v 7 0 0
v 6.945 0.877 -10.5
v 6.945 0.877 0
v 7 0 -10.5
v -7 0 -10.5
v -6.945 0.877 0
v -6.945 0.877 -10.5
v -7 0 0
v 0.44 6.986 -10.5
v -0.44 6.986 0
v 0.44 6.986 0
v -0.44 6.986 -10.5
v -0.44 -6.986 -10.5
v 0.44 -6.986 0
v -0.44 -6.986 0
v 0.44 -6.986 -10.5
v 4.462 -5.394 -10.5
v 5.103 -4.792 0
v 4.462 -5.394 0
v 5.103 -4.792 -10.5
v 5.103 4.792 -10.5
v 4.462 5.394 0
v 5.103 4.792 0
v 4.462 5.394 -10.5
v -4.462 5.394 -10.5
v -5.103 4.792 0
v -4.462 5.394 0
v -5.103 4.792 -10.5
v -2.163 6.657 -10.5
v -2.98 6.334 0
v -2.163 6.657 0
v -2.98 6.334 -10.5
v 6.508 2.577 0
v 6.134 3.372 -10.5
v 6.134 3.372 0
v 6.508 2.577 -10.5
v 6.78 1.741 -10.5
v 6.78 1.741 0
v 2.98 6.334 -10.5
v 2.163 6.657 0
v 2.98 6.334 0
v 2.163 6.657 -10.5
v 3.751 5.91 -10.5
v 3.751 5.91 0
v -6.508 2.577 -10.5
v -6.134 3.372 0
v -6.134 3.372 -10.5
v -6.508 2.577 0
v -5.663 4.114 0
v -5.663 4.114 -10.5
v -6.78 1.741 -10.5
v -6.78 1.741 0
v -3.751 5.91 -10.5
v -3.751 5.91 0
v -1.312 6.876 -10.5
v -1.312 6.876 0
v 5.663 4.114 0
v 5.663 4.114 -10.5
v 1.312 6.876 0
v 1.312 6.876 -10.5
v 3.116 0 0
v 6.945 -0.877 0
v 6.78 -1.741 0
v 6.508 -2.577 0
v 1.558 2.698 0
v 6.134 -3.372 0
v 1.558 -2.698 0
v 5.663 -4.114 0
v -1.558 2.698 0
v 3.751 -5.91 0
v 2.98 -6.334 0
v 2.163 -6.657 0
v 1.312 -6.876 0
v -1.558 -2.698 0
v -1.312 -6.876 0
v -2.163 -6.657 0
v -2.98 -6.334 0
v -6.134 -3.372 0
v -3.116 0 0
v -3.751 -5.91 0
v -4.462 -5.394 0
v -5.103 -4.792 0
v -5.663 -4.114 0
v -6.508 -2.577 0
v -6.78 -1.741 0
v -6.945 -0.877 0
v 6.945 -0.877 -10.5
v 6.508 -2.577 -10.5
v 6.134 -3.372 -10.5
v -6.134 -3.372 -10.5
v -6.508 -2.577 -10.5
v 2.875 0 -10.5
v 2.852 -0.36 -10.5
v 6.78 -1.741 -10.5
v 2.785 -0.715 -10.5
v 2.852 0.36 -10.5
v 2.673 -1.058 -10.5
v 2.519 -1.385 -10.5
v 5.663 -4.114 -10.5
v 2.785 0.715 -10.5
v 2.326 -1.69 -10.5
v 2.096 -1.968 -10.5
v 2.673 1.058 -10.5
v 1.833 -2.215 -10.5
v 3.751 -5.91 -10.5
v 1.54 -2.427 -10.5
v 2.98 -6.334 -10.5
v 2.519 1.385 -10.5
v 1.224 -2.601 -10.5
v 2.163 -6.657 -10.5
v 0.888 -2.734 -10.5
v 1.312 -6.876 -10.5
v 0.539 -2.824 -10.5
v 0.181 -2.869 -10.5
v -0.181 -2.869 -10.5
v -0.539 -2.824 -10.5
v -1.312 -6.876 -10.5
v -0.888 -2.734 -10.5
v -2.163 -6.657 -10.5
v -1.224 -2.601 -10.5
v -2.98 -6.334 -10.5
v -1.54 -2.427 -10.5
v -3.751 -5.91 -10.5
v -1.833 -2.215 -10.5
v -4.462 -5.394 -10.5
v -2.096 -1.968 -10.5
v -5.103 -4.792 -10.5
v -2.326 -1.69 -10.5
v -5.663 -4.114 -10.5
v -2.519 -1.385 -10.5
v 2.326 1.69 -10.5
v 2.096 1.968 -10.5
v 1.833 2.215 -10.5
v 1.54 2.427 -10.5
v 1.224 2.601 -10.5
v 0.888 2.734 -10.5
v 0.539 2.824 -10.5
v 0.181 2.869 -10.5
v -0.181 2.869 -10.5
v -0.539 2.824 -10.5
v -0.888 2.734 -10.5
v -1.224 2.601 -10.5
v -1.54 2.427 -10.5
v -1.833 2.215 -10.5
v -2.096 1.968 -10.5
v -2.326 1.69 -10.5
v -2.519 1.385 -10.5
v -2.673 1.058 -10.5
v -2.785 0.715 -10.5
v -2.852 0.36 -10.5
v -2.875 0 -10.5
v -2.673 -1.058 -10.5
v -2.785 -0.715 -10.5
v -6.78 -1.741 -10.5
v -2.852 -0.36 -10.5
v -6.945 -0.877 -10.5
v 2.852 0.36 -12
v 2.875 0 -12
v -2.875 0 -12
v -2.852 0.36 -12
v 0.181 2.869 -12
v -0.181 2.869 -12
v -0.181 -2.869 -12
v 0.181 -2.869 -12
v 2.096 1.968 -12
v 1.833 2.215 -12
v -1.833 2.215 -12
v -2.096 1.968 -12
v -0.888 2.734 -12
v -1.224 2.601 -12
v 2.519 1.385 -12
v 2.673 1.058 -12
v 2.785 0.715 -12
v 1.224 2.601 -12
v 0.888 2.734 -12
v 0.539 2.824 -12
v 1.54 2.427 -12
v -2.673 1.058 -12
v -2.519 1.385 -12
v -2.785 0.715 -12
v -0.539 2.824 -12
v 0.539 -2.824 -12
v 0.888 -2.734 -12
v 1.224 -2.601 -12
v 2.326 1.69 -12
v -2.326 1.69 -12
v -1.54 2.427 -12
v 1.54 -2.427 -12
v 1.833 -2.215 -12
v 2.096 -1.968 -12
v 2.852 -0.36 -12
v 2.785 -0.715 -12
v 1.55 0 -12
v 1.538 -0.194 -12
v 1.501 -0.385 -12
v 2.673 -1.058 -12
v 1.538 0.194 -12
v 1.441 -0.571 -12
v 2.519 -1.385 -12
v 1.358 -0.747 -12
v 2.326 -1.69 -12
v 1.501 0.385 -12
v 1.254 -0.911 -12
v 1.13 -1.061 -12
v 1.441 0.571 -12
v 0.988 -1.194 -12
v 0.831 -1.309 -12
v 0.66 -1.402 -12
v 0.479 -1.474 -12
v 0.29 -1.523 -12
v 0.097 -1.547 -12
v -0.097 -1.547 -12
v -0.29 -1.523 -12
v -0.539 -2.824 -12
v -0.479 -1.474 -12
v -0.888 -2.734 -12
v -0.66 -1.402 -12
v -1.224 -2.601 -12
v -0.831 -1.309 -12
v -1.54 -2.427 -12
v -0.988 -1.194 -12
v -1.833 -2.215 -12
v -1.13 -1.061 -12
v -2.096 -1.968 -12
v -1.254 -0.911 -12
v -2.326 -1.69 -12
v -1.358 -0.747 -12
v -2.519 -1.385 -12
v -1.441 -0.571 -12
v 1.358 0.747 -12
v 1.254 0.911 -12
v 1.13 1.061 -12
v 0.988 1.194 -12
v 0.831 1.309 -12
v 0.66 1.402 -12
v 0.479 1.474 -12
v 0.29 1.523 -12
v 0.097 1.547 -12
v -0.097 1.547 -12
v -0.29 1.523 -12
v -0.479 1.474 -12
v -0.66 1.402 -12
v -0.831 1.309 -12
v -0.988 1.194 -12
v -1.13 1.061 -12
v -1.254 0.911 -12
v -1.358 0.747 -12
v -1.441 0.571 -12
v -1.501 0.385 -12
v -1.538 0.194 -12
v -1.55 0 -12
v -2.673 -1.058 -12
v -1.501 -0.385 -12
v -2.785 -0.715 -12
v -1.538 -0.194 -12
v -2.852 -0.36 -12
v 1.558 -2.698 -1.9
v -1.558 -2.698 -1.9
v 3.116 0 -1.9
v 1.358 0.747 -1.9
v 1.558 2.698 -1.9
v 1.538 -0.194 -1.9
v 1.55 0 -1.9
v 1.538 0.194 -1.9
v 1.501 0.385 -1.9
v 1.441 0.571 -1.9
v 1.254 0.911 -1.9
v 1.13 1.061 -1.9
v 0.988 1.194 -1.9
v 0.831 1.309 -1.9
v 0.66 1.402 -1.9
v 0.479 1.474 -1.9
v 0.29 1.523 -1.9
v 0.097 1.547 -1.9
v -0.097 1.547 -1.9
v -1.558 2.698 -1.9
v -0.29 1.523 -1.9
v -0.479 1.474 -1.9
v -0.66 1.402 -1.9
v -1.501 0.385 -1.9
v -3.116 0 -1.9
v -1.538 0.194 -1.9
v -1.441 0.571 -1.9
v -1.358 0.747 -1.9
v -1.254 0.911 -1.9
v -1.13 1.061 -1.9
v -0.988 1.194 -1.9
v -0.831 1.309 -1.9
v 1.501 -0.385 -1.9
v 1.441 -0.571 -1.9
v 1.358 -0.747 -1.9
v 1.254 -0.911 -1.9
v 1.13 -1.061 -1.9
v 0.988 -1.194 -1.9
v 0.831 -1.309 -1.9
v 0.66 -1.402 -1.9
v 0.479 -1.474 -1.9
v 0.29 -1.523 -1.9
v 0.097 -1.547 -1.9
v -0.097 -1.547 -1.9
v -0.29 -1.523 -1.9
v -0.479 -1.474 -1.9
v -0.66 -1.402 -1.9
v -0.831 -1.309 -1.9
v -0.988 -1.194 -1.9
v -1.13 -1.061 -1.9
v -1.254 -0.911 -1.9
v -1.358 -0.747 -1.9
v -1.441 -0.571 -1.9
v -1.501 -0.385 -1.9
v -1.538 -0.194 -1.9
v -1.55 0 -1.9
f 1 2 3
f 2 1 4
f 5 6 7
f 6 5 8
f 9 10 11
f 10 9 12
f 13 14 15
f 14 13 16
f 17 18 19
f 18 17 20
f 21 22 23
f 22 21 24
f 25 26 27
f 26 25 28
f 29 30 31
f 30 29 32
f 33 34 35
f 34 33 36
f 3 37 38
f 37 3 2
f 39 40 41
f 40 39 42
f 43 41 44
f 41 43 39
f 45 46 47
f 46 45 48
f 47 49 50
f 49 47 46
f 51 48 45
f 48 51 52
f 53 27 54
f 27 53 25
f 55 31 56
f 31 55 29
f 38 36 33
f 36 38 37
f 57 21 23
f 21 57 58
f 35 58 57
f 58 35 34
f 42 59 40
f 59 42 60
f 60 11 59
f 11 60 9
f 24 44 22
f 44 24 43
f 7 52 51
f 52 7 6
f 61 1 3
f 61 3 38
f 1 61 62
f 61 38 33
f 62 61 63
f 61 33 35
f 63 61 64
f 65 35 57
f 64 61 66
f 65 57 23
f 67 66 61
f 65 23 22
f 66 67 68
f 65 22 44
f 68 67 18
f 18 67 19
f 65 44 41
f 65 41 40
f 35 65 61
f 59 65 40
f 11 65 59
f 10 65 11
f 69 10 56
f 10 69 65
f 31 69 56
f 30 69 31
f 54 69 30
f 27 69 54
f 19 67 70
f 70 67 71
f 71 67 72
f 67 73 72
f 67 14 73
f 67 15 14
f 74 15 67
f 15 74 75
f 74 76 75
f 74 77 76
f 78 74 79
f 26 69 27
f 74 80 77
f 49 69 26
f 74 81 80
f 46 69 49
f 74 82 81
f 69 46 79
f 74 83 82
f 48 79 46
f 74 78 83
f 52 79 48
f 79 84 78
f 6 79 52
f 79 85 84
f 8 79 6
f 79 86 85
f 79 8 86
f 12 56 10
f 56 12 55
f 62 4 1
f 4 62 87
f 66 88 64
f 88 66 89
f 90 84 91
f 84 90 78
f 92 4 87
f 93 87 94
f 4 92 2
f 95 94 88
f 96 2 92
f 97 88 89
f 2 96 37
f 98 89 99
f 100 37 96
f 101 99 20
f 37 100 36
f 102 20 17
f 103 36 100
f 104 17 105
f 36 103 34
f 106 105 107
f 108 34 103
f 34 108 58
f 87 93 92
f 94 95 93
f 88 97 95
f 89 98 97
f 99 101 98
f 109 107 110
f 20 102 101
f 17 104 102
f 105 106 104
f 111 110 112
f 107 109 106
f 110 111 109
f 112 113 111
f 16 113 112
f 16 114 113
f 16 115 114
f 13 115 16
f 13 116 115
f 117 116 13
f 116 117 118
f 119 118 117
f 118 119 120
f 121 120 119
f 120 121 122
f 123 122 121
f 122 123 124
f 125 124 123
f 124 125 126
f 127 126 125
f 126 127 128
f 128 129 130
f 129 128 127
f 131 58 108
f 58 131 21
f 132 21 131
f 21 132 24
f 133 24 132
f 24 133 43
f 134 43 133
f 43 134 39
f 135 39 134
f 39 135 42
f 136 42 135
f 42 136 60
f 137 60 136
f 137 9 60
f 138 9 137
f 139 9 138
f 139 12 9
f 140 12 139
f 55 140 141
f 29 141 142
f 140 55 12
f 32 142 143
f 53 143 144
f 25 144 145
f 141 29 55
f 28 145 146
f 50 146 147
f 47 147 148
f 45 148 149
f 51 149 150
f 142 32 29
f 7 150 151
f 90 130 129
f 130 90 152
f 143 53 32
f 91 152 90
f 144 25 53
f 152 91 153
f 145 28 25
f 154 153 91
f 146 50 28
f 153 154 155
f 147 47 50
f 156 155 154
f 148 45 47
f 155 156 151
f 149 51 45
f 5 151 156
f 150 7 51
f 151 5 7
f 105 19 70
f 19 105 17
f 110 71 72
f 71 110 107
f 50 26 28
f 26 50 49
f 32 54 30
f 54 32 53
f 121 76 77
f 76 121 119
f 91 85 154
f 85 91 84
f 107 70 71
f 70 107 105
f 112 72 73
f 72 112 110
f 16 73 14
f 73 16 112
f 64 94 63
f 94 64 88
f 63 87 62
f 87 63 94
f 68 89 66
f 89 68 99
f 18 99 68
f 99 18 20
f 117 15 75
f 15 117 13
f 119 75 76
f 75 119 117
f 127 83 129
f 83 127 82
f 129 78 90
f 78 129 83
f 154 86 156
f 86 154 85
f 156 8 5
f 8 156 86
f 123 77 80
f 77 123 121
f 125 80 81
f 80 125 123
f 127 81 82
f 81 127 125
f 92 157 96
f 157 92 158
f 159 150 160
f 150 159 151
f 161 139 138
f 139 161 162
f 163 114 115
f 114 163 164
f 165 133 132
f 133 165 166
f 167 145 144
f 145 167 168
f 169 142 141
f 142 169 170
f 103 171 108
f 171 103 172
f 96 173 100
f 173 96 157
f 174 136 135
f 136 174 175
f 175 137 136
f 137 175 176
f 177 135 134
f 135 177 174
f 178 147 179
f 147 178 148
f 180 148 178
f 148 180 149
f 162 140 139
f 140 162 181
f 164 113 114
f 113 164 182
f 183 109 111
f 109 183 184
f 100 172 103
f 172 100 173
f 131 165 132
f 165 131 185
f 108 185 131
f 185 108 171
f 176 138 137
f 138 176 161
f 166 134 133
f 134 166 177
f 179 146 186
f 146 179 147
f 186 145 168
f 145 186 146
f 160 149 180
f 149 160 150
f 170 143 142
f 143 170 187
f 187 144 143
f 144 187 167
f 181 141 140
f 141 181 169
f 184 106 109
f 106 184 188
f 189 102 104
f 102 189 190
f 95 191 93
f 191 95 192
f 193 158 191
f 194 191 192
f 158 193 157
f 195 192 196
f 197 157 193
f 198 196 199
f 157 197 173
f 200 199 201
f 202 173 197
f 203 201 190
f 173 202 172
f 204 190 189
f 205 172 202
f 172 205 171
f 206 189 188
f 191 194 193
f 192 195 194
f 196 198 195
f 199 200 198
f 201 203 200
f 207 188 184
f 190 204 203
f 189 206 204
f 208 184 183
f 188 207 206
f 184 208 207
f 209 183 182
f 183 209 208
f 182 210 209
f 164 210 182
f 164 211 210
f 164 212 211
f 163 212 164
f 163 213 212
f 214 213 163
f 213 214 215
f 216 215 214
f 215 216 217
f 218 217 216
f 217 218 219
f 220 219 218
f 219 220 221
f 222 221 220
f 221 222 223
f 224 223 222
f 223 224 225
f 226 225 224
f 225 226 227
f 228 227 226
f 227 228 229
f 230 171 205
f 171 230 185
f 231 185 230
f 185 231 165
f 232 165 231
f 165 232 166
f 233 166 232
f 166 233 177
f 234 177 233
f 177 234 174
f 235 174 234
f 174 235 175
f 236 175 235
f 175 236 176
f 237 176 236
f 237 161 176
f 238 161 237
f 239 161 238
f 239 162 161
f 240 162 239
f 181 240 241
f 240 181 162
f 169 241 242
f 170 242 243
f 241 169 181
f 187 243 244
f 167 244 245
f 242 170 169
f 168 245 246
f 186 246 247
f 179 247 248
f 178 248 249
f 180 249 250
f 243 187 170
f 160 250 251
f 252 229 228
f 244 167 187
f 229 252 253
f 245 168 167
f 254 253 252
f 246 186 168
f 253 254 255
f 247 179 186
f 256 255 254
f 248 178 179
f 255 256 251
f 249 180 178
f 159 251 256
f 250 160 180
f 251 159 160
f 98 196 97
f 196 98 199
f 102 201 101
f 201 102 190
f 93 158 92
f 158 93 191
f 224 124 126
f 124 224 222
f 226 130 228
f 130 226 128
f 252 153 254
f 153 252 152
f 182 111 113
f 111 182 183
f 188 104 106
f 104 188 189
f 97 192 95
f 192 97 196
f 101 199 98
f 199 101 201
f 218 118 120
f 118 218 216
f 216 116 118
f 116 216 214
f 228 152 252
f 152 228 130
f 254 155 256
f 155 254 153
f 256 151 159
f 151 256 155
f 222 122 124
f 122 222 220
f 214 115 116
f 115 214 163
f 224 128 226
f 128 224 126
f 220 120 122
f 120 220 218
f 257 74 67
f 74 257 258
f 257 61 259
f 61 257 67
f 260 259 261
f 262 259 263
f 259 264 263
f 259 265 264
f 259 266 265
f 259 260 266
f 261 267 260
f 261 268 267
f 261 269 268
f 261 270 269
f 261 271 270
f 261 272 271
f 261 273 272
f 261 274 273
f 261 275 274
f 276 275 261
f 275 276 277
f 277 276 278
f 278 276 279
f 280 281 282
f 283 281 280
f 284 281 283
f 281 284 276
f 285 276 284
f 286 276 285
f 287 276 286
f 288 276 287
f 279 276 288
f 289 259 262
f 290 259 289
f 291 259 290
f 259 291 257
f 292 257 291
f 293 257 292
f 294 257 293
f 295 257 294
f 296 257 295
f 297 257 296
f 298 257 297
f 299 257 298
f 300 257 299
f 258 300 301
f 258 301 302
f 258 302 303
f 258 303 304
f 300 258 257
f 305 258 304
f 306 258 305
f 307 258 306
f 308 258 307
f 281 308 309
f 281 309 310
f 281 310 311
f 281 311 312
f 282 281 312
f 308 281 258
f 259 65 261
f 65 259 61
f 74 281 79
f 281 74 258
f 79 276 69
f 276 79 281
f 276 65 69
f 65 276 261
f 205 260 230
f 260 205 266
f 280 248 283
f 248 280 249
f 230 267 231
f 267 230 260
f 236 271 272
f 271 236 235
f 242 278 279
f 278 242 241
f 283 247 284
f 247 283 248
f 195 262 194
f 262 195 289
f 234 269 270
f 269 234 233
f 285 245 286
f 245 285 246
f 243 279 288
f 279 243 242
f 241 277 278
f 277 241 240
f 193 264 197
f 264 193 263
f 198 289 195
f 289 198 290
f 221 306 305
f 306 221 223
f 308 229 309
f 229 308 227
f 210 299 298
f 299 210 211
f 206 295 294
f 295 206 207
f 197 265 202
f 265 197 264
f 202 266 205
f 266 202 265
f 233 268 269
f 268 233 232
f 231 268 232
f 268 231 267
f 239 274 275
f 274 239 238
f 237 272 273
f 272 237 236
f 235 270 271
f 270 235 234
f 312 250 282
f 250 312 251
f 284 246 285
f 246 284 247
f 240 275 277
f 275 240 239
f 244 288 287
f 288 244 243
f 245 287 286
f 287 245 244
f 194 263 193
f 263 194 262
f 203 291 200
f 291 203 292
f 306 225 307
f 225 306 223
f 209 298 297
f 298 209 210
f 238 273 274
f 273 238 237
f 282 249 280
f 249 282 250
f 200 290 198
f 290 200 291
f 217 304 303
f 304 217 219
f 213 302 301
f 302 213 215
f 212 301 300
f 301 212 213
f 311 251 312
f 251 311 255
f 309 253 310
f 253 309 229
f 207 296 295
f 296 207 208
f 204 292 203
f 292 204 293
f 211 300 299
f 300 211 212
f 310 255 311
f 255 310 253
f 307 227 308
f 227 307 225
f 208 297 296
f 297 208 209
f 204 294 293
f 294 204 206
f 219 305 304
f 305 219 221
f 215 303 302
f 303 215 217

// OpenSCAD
$fn = 50;


difference() {
	union() {
		translate(v = [0, 0, -10.5000000000]) {
			cylinder(h = 10.5000000000, r = 7.0000000000);
		}
		translate(v = [0, 0, -12.0000000000]) {
			cylinder(h = 12, r = 2.8750000000);
		}
	}
	union() {
		translate(v = [0, 0, 0]) {
			rotate(a = [0, 0, 0]) {
				difference() {
					union() {
						translate(v = [0, 0, -1.9000000000]) {
							linear_extrude(height = 1.9000000000) {
								polygon(points = [[3.1158000000, 0.0000000000], [1.5579000000, 2.6983619531], [-1.5579000000, 2.6983619531], [-3.1158000000, 0.0000000000], [-1.5579000000, -2.6983619531], [1.5579000000, -2.6983619531]]);
							}
						}
					}
					union();
				}
			}
		}
		#translate(v = [0, 0, -100.0000000000]) {
			cylinder(h = 200, r = 1.5500000000);
		}
	}
}
